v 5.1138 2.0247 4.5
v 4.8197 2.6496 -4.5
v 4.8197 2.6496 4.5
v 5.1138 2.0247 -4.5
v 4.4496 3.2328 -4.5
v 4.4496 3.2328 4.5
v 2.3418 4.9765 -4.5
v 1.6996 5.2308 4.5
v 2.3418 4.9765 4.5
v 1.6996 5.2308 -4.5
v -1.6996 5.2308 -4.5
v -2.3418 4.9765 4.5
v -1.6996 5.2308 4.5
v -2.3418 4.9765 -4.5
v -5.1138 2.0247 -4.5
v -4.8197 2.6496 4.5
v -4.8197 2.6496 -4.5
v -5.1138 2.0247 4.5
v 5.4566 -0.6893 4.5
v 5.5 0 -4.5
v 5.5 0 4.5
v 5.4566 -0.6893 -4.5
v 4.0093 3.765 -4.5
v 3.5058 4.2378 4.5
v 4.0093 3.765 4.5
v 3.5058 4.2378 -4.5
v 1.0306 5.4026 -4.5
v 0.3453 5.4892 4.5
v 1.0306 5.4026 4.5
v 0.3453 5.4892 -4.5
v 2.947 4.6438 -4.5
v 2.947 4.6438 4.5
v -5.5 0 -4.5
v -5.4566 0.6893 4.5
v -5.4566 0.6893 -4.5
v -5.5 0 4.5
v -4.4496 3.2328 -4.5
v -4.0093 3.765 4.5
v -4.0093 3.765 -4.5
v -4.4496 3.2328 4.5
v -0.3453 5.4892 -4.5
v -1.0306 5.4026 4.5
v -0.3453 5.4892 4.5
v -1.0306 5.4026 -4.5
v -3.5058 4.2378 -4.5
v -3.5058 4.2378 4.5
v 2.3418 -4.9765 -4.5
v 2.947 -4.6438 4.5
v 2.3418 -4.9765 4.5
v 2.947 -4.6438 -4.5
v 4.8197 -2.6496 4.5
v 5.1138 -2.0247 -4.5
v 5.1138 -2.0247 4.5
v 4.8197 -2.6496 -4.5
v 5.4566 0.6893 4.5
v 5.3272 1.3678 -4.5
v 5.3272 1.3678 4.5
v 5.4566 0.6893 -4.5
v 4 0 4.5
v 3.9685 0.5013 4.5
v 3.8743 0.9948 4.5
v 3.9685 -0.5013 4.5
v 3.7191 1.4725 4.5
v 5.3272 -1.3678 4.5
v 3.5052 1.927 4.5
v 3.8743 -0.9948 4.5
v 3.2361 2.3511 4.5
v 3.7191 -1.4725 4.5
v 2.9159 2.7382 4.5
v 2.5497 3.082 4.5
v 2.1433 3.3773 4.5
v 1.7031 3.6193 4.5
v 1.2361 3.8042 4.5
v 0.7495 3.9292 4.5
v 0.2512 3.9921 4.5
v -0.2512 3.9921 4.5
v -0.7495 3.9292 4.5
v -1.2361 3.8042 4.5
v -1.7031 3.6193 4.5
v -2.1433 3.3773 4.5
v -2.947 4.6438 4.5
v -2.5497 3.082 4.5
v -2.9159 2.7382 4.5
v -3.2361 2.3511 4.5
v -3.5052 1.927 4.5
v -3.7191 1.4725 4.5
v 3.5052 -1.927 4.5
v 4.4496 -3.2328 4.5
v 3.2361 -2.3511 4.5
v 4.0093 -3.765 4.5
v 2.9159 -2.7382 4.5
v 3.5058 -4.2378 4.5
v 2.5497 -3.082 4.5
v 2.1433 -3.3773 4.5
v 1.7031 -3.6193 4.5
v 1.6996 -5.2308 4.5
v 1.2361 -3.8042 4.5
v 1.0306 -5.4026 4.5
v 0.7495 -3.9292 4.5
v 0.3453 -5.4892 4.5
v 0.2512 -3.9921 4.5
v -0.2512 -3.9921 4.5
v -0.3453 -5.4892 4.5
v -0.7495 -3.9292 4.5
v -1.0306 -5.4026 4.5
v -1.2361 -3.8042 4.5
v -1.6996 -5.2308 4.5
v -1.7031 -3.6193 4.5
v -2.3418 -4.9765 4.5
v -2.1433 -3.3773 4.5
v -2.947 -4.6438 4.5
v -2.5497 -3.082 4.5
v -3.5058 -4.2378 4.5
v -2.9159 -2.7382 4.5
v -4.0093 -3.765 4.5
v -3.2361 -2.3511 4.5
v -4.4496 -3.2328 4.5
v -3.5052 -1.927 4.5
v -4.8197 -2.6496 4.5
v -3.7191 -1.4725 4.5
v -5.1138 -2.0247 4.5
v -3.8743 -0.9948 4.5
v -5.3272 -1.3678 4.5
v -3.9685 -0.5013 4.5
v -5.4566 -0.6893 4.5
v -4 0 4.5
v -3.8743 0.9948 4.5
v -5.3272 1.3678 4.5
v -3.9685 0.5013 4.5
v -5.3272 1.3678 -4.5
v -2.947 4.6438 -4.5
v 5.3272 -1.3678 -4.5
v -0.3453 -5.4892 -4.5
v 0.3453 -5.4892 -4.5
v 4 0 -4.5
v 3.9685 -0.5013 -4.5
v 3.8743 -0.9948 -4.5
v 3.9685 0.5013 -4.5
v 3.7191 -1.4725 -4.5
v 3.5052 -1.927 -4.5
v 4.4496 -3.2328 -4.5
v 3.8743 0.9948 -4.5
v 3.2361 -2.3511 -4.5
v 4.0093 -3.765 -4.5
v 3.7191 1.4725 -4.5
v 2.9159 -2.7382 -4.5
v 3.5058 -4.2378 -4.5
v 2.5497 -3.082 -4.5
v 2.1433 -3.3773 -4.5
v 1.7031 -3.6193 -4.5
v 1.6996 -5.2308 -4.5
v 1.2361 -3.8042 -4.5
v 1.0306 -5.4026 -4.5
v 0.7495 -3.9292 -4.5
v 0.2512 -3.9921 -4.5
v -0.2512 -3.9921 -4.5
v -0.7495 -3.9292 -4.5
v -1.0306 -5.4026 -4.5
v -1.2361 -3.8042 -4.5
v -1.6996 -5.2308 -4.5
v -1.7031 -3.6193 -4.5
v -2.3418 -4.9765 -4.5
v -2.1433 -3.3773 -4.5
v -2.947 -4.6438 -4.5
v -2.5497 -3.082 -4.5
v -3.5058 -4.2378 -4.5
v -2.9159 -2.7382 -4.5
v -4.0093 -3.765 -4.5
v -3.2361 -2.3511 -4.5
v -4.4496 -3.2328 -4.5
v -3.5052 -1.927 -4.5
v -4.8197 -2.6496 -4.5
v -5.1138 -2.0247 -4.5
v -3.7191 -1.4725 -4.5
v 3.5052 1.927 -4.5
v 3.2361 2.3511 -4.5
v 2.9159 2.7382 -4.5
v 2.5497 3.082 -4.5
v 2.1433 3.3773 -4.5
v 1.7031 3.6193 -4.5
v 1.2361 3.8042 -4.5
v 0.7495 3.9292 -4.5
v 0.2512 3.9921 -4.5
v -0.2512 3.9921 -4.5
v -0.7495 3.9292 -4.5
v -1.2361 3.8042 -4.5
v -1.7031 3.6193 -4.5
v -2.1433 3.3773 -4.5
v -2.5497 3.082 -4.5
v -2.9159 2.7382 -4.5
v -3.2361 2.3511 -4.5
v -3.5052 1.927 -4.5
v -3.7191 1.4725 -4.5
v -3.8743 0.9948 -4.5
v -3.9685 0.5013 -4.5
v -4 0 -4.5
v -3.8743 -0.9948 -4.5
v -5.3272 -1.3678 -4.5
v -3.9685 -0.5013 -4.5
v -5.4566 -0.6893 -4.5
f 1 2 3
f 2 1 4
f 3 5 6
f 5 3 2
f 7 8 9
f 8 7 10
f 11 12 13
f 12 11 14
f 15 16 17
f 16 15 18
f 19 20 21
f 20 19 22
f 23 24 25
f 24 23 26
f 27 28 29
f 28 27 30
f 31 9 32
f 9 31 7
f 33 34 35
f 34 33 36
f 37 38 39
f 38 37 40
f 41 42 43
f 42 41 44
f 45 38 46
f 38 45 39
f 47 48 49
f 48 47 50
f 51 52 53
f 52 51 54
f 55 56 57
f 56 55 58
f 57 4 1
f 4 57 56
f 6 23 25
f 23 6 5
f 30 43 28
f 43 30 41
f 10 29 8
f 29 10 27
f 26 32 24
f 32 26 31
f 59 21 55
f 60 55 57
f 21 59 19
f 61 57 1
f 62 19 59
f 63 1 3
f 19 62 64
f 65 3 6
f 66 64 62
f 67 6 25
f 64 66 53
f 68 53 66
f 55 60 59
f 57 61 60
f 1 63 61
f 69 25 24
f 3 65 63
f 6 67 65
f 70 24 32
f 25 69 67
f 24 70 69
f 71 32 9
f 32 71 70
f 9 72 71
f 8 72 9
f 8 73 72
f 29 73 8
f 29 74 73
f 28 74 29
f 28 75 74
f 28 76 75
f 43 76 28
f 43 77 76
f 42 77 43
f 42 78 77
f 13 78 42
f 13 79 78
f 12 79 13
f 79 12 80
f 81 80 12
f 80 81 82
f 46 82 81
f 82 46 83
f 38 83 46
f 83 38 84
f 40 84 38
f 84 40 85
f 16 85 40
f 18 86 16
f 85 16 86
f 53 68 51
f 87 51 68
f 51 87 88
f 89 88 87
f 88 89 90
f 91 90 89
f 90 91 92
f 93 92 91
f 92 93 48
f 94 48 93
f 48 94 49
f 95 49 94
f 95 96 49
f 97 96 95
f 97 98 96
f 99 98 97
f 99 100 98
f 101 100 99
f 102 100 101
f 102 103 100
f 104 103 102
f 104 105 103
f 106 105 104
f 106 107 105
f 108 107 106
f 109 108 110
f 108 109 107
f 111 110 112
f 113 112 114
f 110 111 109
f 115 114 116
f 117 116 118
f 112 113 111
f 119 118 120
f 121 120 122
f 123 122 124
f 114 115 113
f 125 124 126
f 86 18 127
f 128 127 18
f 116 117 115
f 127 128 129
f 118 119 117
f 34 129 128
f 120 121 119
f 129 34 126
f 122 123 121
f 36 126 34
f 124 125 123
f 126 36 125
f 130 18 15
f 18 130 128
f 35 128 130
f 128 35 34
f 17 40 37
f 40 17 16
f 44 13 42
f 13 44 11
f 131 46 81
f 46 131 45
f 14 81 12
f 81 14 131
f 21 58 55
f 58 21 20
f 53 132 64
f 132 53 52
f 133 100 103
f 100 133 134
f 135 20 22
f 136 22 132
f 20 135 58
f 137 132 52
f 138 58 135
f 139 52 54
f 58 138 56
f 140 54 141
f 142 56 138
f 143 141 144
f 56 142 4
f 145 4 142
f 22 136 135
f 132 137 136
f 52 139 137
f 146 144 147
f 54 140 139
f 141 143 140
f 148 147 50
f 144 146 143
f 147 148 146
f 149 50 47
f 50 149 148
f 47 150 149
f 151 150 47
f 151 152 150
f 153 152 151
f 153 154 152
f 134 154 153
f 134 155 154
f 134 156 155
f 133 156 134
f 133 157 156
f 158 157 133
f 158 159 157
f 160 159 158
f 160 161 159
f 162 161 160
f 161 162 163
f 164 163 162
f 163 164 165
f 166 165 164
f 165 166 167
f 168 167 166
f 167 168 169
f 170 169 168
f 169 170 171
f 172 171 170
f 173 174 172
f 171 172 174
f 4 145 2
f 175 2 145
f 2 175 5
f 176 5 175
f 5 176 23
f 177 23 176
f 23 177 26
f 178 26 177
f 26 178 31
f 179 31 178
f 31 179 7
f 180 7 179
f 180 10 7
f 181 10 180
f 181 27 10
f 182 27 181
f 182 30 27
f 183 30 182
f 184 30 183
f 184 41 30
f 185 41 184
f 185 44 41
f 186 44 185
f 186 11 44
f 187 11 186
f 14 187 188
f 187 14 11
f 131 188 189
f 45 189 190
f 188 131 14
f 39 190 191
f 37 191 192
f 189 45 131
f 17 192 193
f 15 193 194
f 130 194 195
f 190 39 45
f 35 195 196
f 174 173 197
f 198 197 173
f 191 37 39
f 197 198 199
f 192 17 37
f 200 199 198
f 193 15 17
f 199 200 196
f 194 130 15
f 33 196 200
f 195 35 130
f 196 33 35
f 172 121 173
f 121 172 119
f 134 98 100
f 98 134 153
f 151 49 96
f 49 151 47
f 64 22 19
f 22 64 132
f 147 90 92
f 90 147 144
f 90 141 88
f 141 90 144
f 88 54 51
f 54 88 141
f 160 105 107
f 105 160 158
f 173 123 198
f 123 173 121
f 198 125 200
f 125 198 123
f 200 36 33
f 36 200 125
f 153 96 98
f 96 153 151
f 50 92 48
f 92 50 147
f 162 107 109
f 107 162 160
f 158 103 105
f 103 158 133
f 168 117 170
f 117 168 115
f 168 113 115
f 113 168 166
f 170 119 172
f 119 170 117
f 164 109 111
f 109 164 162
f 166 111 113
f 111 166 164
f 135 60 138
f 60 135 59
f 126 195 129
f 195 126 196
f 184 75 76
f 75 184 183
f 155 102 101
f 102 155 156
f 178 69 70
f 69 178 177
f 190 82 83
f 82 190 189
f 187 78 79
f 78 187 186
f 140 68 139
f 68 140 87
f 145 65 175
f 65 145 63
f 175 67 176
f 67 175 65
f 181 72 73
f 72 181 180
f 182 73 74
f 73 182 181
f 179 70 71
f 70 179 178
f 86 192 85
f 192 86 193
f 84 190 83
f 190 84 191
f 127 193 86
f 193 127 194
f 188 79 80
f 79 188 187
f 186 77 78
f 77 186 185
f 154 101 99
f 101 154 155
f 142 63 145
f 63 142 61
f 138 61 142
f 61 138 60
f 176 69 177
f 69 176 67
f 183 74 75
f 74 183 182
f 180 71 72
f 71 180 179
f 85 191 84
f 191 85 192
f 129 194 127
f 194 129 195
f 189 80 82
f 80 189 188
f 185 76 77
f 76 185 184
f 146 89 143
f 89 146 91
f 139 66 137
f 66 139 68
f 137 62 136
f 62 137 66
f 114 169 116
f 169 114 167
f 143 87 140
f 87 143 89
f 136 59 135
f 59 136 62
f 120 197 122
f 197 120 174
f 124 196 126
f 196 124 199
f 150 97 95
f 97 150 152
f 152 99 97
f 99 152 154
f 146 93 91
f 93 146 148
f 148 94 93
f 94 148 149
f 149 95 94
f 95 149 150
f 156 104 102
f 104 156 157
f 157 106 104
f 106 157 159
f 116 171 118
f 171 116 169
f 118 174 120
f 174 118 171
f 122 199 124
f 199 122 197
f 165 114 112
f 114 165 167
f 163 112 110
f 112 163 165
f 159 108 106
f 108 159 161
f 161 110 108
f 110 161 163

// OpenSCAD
$fn = 50;


difference() {
	union() {
		translate(v = [0, 0, -4.5000000000]) {
			cylinder(h = 9, r = 5.5000000000);
		}
	}
	union() {
		translate(v = [0, 0, -100.0000000000]) {
			cylinder(h = 200, r = 4);
		}
	}
}
